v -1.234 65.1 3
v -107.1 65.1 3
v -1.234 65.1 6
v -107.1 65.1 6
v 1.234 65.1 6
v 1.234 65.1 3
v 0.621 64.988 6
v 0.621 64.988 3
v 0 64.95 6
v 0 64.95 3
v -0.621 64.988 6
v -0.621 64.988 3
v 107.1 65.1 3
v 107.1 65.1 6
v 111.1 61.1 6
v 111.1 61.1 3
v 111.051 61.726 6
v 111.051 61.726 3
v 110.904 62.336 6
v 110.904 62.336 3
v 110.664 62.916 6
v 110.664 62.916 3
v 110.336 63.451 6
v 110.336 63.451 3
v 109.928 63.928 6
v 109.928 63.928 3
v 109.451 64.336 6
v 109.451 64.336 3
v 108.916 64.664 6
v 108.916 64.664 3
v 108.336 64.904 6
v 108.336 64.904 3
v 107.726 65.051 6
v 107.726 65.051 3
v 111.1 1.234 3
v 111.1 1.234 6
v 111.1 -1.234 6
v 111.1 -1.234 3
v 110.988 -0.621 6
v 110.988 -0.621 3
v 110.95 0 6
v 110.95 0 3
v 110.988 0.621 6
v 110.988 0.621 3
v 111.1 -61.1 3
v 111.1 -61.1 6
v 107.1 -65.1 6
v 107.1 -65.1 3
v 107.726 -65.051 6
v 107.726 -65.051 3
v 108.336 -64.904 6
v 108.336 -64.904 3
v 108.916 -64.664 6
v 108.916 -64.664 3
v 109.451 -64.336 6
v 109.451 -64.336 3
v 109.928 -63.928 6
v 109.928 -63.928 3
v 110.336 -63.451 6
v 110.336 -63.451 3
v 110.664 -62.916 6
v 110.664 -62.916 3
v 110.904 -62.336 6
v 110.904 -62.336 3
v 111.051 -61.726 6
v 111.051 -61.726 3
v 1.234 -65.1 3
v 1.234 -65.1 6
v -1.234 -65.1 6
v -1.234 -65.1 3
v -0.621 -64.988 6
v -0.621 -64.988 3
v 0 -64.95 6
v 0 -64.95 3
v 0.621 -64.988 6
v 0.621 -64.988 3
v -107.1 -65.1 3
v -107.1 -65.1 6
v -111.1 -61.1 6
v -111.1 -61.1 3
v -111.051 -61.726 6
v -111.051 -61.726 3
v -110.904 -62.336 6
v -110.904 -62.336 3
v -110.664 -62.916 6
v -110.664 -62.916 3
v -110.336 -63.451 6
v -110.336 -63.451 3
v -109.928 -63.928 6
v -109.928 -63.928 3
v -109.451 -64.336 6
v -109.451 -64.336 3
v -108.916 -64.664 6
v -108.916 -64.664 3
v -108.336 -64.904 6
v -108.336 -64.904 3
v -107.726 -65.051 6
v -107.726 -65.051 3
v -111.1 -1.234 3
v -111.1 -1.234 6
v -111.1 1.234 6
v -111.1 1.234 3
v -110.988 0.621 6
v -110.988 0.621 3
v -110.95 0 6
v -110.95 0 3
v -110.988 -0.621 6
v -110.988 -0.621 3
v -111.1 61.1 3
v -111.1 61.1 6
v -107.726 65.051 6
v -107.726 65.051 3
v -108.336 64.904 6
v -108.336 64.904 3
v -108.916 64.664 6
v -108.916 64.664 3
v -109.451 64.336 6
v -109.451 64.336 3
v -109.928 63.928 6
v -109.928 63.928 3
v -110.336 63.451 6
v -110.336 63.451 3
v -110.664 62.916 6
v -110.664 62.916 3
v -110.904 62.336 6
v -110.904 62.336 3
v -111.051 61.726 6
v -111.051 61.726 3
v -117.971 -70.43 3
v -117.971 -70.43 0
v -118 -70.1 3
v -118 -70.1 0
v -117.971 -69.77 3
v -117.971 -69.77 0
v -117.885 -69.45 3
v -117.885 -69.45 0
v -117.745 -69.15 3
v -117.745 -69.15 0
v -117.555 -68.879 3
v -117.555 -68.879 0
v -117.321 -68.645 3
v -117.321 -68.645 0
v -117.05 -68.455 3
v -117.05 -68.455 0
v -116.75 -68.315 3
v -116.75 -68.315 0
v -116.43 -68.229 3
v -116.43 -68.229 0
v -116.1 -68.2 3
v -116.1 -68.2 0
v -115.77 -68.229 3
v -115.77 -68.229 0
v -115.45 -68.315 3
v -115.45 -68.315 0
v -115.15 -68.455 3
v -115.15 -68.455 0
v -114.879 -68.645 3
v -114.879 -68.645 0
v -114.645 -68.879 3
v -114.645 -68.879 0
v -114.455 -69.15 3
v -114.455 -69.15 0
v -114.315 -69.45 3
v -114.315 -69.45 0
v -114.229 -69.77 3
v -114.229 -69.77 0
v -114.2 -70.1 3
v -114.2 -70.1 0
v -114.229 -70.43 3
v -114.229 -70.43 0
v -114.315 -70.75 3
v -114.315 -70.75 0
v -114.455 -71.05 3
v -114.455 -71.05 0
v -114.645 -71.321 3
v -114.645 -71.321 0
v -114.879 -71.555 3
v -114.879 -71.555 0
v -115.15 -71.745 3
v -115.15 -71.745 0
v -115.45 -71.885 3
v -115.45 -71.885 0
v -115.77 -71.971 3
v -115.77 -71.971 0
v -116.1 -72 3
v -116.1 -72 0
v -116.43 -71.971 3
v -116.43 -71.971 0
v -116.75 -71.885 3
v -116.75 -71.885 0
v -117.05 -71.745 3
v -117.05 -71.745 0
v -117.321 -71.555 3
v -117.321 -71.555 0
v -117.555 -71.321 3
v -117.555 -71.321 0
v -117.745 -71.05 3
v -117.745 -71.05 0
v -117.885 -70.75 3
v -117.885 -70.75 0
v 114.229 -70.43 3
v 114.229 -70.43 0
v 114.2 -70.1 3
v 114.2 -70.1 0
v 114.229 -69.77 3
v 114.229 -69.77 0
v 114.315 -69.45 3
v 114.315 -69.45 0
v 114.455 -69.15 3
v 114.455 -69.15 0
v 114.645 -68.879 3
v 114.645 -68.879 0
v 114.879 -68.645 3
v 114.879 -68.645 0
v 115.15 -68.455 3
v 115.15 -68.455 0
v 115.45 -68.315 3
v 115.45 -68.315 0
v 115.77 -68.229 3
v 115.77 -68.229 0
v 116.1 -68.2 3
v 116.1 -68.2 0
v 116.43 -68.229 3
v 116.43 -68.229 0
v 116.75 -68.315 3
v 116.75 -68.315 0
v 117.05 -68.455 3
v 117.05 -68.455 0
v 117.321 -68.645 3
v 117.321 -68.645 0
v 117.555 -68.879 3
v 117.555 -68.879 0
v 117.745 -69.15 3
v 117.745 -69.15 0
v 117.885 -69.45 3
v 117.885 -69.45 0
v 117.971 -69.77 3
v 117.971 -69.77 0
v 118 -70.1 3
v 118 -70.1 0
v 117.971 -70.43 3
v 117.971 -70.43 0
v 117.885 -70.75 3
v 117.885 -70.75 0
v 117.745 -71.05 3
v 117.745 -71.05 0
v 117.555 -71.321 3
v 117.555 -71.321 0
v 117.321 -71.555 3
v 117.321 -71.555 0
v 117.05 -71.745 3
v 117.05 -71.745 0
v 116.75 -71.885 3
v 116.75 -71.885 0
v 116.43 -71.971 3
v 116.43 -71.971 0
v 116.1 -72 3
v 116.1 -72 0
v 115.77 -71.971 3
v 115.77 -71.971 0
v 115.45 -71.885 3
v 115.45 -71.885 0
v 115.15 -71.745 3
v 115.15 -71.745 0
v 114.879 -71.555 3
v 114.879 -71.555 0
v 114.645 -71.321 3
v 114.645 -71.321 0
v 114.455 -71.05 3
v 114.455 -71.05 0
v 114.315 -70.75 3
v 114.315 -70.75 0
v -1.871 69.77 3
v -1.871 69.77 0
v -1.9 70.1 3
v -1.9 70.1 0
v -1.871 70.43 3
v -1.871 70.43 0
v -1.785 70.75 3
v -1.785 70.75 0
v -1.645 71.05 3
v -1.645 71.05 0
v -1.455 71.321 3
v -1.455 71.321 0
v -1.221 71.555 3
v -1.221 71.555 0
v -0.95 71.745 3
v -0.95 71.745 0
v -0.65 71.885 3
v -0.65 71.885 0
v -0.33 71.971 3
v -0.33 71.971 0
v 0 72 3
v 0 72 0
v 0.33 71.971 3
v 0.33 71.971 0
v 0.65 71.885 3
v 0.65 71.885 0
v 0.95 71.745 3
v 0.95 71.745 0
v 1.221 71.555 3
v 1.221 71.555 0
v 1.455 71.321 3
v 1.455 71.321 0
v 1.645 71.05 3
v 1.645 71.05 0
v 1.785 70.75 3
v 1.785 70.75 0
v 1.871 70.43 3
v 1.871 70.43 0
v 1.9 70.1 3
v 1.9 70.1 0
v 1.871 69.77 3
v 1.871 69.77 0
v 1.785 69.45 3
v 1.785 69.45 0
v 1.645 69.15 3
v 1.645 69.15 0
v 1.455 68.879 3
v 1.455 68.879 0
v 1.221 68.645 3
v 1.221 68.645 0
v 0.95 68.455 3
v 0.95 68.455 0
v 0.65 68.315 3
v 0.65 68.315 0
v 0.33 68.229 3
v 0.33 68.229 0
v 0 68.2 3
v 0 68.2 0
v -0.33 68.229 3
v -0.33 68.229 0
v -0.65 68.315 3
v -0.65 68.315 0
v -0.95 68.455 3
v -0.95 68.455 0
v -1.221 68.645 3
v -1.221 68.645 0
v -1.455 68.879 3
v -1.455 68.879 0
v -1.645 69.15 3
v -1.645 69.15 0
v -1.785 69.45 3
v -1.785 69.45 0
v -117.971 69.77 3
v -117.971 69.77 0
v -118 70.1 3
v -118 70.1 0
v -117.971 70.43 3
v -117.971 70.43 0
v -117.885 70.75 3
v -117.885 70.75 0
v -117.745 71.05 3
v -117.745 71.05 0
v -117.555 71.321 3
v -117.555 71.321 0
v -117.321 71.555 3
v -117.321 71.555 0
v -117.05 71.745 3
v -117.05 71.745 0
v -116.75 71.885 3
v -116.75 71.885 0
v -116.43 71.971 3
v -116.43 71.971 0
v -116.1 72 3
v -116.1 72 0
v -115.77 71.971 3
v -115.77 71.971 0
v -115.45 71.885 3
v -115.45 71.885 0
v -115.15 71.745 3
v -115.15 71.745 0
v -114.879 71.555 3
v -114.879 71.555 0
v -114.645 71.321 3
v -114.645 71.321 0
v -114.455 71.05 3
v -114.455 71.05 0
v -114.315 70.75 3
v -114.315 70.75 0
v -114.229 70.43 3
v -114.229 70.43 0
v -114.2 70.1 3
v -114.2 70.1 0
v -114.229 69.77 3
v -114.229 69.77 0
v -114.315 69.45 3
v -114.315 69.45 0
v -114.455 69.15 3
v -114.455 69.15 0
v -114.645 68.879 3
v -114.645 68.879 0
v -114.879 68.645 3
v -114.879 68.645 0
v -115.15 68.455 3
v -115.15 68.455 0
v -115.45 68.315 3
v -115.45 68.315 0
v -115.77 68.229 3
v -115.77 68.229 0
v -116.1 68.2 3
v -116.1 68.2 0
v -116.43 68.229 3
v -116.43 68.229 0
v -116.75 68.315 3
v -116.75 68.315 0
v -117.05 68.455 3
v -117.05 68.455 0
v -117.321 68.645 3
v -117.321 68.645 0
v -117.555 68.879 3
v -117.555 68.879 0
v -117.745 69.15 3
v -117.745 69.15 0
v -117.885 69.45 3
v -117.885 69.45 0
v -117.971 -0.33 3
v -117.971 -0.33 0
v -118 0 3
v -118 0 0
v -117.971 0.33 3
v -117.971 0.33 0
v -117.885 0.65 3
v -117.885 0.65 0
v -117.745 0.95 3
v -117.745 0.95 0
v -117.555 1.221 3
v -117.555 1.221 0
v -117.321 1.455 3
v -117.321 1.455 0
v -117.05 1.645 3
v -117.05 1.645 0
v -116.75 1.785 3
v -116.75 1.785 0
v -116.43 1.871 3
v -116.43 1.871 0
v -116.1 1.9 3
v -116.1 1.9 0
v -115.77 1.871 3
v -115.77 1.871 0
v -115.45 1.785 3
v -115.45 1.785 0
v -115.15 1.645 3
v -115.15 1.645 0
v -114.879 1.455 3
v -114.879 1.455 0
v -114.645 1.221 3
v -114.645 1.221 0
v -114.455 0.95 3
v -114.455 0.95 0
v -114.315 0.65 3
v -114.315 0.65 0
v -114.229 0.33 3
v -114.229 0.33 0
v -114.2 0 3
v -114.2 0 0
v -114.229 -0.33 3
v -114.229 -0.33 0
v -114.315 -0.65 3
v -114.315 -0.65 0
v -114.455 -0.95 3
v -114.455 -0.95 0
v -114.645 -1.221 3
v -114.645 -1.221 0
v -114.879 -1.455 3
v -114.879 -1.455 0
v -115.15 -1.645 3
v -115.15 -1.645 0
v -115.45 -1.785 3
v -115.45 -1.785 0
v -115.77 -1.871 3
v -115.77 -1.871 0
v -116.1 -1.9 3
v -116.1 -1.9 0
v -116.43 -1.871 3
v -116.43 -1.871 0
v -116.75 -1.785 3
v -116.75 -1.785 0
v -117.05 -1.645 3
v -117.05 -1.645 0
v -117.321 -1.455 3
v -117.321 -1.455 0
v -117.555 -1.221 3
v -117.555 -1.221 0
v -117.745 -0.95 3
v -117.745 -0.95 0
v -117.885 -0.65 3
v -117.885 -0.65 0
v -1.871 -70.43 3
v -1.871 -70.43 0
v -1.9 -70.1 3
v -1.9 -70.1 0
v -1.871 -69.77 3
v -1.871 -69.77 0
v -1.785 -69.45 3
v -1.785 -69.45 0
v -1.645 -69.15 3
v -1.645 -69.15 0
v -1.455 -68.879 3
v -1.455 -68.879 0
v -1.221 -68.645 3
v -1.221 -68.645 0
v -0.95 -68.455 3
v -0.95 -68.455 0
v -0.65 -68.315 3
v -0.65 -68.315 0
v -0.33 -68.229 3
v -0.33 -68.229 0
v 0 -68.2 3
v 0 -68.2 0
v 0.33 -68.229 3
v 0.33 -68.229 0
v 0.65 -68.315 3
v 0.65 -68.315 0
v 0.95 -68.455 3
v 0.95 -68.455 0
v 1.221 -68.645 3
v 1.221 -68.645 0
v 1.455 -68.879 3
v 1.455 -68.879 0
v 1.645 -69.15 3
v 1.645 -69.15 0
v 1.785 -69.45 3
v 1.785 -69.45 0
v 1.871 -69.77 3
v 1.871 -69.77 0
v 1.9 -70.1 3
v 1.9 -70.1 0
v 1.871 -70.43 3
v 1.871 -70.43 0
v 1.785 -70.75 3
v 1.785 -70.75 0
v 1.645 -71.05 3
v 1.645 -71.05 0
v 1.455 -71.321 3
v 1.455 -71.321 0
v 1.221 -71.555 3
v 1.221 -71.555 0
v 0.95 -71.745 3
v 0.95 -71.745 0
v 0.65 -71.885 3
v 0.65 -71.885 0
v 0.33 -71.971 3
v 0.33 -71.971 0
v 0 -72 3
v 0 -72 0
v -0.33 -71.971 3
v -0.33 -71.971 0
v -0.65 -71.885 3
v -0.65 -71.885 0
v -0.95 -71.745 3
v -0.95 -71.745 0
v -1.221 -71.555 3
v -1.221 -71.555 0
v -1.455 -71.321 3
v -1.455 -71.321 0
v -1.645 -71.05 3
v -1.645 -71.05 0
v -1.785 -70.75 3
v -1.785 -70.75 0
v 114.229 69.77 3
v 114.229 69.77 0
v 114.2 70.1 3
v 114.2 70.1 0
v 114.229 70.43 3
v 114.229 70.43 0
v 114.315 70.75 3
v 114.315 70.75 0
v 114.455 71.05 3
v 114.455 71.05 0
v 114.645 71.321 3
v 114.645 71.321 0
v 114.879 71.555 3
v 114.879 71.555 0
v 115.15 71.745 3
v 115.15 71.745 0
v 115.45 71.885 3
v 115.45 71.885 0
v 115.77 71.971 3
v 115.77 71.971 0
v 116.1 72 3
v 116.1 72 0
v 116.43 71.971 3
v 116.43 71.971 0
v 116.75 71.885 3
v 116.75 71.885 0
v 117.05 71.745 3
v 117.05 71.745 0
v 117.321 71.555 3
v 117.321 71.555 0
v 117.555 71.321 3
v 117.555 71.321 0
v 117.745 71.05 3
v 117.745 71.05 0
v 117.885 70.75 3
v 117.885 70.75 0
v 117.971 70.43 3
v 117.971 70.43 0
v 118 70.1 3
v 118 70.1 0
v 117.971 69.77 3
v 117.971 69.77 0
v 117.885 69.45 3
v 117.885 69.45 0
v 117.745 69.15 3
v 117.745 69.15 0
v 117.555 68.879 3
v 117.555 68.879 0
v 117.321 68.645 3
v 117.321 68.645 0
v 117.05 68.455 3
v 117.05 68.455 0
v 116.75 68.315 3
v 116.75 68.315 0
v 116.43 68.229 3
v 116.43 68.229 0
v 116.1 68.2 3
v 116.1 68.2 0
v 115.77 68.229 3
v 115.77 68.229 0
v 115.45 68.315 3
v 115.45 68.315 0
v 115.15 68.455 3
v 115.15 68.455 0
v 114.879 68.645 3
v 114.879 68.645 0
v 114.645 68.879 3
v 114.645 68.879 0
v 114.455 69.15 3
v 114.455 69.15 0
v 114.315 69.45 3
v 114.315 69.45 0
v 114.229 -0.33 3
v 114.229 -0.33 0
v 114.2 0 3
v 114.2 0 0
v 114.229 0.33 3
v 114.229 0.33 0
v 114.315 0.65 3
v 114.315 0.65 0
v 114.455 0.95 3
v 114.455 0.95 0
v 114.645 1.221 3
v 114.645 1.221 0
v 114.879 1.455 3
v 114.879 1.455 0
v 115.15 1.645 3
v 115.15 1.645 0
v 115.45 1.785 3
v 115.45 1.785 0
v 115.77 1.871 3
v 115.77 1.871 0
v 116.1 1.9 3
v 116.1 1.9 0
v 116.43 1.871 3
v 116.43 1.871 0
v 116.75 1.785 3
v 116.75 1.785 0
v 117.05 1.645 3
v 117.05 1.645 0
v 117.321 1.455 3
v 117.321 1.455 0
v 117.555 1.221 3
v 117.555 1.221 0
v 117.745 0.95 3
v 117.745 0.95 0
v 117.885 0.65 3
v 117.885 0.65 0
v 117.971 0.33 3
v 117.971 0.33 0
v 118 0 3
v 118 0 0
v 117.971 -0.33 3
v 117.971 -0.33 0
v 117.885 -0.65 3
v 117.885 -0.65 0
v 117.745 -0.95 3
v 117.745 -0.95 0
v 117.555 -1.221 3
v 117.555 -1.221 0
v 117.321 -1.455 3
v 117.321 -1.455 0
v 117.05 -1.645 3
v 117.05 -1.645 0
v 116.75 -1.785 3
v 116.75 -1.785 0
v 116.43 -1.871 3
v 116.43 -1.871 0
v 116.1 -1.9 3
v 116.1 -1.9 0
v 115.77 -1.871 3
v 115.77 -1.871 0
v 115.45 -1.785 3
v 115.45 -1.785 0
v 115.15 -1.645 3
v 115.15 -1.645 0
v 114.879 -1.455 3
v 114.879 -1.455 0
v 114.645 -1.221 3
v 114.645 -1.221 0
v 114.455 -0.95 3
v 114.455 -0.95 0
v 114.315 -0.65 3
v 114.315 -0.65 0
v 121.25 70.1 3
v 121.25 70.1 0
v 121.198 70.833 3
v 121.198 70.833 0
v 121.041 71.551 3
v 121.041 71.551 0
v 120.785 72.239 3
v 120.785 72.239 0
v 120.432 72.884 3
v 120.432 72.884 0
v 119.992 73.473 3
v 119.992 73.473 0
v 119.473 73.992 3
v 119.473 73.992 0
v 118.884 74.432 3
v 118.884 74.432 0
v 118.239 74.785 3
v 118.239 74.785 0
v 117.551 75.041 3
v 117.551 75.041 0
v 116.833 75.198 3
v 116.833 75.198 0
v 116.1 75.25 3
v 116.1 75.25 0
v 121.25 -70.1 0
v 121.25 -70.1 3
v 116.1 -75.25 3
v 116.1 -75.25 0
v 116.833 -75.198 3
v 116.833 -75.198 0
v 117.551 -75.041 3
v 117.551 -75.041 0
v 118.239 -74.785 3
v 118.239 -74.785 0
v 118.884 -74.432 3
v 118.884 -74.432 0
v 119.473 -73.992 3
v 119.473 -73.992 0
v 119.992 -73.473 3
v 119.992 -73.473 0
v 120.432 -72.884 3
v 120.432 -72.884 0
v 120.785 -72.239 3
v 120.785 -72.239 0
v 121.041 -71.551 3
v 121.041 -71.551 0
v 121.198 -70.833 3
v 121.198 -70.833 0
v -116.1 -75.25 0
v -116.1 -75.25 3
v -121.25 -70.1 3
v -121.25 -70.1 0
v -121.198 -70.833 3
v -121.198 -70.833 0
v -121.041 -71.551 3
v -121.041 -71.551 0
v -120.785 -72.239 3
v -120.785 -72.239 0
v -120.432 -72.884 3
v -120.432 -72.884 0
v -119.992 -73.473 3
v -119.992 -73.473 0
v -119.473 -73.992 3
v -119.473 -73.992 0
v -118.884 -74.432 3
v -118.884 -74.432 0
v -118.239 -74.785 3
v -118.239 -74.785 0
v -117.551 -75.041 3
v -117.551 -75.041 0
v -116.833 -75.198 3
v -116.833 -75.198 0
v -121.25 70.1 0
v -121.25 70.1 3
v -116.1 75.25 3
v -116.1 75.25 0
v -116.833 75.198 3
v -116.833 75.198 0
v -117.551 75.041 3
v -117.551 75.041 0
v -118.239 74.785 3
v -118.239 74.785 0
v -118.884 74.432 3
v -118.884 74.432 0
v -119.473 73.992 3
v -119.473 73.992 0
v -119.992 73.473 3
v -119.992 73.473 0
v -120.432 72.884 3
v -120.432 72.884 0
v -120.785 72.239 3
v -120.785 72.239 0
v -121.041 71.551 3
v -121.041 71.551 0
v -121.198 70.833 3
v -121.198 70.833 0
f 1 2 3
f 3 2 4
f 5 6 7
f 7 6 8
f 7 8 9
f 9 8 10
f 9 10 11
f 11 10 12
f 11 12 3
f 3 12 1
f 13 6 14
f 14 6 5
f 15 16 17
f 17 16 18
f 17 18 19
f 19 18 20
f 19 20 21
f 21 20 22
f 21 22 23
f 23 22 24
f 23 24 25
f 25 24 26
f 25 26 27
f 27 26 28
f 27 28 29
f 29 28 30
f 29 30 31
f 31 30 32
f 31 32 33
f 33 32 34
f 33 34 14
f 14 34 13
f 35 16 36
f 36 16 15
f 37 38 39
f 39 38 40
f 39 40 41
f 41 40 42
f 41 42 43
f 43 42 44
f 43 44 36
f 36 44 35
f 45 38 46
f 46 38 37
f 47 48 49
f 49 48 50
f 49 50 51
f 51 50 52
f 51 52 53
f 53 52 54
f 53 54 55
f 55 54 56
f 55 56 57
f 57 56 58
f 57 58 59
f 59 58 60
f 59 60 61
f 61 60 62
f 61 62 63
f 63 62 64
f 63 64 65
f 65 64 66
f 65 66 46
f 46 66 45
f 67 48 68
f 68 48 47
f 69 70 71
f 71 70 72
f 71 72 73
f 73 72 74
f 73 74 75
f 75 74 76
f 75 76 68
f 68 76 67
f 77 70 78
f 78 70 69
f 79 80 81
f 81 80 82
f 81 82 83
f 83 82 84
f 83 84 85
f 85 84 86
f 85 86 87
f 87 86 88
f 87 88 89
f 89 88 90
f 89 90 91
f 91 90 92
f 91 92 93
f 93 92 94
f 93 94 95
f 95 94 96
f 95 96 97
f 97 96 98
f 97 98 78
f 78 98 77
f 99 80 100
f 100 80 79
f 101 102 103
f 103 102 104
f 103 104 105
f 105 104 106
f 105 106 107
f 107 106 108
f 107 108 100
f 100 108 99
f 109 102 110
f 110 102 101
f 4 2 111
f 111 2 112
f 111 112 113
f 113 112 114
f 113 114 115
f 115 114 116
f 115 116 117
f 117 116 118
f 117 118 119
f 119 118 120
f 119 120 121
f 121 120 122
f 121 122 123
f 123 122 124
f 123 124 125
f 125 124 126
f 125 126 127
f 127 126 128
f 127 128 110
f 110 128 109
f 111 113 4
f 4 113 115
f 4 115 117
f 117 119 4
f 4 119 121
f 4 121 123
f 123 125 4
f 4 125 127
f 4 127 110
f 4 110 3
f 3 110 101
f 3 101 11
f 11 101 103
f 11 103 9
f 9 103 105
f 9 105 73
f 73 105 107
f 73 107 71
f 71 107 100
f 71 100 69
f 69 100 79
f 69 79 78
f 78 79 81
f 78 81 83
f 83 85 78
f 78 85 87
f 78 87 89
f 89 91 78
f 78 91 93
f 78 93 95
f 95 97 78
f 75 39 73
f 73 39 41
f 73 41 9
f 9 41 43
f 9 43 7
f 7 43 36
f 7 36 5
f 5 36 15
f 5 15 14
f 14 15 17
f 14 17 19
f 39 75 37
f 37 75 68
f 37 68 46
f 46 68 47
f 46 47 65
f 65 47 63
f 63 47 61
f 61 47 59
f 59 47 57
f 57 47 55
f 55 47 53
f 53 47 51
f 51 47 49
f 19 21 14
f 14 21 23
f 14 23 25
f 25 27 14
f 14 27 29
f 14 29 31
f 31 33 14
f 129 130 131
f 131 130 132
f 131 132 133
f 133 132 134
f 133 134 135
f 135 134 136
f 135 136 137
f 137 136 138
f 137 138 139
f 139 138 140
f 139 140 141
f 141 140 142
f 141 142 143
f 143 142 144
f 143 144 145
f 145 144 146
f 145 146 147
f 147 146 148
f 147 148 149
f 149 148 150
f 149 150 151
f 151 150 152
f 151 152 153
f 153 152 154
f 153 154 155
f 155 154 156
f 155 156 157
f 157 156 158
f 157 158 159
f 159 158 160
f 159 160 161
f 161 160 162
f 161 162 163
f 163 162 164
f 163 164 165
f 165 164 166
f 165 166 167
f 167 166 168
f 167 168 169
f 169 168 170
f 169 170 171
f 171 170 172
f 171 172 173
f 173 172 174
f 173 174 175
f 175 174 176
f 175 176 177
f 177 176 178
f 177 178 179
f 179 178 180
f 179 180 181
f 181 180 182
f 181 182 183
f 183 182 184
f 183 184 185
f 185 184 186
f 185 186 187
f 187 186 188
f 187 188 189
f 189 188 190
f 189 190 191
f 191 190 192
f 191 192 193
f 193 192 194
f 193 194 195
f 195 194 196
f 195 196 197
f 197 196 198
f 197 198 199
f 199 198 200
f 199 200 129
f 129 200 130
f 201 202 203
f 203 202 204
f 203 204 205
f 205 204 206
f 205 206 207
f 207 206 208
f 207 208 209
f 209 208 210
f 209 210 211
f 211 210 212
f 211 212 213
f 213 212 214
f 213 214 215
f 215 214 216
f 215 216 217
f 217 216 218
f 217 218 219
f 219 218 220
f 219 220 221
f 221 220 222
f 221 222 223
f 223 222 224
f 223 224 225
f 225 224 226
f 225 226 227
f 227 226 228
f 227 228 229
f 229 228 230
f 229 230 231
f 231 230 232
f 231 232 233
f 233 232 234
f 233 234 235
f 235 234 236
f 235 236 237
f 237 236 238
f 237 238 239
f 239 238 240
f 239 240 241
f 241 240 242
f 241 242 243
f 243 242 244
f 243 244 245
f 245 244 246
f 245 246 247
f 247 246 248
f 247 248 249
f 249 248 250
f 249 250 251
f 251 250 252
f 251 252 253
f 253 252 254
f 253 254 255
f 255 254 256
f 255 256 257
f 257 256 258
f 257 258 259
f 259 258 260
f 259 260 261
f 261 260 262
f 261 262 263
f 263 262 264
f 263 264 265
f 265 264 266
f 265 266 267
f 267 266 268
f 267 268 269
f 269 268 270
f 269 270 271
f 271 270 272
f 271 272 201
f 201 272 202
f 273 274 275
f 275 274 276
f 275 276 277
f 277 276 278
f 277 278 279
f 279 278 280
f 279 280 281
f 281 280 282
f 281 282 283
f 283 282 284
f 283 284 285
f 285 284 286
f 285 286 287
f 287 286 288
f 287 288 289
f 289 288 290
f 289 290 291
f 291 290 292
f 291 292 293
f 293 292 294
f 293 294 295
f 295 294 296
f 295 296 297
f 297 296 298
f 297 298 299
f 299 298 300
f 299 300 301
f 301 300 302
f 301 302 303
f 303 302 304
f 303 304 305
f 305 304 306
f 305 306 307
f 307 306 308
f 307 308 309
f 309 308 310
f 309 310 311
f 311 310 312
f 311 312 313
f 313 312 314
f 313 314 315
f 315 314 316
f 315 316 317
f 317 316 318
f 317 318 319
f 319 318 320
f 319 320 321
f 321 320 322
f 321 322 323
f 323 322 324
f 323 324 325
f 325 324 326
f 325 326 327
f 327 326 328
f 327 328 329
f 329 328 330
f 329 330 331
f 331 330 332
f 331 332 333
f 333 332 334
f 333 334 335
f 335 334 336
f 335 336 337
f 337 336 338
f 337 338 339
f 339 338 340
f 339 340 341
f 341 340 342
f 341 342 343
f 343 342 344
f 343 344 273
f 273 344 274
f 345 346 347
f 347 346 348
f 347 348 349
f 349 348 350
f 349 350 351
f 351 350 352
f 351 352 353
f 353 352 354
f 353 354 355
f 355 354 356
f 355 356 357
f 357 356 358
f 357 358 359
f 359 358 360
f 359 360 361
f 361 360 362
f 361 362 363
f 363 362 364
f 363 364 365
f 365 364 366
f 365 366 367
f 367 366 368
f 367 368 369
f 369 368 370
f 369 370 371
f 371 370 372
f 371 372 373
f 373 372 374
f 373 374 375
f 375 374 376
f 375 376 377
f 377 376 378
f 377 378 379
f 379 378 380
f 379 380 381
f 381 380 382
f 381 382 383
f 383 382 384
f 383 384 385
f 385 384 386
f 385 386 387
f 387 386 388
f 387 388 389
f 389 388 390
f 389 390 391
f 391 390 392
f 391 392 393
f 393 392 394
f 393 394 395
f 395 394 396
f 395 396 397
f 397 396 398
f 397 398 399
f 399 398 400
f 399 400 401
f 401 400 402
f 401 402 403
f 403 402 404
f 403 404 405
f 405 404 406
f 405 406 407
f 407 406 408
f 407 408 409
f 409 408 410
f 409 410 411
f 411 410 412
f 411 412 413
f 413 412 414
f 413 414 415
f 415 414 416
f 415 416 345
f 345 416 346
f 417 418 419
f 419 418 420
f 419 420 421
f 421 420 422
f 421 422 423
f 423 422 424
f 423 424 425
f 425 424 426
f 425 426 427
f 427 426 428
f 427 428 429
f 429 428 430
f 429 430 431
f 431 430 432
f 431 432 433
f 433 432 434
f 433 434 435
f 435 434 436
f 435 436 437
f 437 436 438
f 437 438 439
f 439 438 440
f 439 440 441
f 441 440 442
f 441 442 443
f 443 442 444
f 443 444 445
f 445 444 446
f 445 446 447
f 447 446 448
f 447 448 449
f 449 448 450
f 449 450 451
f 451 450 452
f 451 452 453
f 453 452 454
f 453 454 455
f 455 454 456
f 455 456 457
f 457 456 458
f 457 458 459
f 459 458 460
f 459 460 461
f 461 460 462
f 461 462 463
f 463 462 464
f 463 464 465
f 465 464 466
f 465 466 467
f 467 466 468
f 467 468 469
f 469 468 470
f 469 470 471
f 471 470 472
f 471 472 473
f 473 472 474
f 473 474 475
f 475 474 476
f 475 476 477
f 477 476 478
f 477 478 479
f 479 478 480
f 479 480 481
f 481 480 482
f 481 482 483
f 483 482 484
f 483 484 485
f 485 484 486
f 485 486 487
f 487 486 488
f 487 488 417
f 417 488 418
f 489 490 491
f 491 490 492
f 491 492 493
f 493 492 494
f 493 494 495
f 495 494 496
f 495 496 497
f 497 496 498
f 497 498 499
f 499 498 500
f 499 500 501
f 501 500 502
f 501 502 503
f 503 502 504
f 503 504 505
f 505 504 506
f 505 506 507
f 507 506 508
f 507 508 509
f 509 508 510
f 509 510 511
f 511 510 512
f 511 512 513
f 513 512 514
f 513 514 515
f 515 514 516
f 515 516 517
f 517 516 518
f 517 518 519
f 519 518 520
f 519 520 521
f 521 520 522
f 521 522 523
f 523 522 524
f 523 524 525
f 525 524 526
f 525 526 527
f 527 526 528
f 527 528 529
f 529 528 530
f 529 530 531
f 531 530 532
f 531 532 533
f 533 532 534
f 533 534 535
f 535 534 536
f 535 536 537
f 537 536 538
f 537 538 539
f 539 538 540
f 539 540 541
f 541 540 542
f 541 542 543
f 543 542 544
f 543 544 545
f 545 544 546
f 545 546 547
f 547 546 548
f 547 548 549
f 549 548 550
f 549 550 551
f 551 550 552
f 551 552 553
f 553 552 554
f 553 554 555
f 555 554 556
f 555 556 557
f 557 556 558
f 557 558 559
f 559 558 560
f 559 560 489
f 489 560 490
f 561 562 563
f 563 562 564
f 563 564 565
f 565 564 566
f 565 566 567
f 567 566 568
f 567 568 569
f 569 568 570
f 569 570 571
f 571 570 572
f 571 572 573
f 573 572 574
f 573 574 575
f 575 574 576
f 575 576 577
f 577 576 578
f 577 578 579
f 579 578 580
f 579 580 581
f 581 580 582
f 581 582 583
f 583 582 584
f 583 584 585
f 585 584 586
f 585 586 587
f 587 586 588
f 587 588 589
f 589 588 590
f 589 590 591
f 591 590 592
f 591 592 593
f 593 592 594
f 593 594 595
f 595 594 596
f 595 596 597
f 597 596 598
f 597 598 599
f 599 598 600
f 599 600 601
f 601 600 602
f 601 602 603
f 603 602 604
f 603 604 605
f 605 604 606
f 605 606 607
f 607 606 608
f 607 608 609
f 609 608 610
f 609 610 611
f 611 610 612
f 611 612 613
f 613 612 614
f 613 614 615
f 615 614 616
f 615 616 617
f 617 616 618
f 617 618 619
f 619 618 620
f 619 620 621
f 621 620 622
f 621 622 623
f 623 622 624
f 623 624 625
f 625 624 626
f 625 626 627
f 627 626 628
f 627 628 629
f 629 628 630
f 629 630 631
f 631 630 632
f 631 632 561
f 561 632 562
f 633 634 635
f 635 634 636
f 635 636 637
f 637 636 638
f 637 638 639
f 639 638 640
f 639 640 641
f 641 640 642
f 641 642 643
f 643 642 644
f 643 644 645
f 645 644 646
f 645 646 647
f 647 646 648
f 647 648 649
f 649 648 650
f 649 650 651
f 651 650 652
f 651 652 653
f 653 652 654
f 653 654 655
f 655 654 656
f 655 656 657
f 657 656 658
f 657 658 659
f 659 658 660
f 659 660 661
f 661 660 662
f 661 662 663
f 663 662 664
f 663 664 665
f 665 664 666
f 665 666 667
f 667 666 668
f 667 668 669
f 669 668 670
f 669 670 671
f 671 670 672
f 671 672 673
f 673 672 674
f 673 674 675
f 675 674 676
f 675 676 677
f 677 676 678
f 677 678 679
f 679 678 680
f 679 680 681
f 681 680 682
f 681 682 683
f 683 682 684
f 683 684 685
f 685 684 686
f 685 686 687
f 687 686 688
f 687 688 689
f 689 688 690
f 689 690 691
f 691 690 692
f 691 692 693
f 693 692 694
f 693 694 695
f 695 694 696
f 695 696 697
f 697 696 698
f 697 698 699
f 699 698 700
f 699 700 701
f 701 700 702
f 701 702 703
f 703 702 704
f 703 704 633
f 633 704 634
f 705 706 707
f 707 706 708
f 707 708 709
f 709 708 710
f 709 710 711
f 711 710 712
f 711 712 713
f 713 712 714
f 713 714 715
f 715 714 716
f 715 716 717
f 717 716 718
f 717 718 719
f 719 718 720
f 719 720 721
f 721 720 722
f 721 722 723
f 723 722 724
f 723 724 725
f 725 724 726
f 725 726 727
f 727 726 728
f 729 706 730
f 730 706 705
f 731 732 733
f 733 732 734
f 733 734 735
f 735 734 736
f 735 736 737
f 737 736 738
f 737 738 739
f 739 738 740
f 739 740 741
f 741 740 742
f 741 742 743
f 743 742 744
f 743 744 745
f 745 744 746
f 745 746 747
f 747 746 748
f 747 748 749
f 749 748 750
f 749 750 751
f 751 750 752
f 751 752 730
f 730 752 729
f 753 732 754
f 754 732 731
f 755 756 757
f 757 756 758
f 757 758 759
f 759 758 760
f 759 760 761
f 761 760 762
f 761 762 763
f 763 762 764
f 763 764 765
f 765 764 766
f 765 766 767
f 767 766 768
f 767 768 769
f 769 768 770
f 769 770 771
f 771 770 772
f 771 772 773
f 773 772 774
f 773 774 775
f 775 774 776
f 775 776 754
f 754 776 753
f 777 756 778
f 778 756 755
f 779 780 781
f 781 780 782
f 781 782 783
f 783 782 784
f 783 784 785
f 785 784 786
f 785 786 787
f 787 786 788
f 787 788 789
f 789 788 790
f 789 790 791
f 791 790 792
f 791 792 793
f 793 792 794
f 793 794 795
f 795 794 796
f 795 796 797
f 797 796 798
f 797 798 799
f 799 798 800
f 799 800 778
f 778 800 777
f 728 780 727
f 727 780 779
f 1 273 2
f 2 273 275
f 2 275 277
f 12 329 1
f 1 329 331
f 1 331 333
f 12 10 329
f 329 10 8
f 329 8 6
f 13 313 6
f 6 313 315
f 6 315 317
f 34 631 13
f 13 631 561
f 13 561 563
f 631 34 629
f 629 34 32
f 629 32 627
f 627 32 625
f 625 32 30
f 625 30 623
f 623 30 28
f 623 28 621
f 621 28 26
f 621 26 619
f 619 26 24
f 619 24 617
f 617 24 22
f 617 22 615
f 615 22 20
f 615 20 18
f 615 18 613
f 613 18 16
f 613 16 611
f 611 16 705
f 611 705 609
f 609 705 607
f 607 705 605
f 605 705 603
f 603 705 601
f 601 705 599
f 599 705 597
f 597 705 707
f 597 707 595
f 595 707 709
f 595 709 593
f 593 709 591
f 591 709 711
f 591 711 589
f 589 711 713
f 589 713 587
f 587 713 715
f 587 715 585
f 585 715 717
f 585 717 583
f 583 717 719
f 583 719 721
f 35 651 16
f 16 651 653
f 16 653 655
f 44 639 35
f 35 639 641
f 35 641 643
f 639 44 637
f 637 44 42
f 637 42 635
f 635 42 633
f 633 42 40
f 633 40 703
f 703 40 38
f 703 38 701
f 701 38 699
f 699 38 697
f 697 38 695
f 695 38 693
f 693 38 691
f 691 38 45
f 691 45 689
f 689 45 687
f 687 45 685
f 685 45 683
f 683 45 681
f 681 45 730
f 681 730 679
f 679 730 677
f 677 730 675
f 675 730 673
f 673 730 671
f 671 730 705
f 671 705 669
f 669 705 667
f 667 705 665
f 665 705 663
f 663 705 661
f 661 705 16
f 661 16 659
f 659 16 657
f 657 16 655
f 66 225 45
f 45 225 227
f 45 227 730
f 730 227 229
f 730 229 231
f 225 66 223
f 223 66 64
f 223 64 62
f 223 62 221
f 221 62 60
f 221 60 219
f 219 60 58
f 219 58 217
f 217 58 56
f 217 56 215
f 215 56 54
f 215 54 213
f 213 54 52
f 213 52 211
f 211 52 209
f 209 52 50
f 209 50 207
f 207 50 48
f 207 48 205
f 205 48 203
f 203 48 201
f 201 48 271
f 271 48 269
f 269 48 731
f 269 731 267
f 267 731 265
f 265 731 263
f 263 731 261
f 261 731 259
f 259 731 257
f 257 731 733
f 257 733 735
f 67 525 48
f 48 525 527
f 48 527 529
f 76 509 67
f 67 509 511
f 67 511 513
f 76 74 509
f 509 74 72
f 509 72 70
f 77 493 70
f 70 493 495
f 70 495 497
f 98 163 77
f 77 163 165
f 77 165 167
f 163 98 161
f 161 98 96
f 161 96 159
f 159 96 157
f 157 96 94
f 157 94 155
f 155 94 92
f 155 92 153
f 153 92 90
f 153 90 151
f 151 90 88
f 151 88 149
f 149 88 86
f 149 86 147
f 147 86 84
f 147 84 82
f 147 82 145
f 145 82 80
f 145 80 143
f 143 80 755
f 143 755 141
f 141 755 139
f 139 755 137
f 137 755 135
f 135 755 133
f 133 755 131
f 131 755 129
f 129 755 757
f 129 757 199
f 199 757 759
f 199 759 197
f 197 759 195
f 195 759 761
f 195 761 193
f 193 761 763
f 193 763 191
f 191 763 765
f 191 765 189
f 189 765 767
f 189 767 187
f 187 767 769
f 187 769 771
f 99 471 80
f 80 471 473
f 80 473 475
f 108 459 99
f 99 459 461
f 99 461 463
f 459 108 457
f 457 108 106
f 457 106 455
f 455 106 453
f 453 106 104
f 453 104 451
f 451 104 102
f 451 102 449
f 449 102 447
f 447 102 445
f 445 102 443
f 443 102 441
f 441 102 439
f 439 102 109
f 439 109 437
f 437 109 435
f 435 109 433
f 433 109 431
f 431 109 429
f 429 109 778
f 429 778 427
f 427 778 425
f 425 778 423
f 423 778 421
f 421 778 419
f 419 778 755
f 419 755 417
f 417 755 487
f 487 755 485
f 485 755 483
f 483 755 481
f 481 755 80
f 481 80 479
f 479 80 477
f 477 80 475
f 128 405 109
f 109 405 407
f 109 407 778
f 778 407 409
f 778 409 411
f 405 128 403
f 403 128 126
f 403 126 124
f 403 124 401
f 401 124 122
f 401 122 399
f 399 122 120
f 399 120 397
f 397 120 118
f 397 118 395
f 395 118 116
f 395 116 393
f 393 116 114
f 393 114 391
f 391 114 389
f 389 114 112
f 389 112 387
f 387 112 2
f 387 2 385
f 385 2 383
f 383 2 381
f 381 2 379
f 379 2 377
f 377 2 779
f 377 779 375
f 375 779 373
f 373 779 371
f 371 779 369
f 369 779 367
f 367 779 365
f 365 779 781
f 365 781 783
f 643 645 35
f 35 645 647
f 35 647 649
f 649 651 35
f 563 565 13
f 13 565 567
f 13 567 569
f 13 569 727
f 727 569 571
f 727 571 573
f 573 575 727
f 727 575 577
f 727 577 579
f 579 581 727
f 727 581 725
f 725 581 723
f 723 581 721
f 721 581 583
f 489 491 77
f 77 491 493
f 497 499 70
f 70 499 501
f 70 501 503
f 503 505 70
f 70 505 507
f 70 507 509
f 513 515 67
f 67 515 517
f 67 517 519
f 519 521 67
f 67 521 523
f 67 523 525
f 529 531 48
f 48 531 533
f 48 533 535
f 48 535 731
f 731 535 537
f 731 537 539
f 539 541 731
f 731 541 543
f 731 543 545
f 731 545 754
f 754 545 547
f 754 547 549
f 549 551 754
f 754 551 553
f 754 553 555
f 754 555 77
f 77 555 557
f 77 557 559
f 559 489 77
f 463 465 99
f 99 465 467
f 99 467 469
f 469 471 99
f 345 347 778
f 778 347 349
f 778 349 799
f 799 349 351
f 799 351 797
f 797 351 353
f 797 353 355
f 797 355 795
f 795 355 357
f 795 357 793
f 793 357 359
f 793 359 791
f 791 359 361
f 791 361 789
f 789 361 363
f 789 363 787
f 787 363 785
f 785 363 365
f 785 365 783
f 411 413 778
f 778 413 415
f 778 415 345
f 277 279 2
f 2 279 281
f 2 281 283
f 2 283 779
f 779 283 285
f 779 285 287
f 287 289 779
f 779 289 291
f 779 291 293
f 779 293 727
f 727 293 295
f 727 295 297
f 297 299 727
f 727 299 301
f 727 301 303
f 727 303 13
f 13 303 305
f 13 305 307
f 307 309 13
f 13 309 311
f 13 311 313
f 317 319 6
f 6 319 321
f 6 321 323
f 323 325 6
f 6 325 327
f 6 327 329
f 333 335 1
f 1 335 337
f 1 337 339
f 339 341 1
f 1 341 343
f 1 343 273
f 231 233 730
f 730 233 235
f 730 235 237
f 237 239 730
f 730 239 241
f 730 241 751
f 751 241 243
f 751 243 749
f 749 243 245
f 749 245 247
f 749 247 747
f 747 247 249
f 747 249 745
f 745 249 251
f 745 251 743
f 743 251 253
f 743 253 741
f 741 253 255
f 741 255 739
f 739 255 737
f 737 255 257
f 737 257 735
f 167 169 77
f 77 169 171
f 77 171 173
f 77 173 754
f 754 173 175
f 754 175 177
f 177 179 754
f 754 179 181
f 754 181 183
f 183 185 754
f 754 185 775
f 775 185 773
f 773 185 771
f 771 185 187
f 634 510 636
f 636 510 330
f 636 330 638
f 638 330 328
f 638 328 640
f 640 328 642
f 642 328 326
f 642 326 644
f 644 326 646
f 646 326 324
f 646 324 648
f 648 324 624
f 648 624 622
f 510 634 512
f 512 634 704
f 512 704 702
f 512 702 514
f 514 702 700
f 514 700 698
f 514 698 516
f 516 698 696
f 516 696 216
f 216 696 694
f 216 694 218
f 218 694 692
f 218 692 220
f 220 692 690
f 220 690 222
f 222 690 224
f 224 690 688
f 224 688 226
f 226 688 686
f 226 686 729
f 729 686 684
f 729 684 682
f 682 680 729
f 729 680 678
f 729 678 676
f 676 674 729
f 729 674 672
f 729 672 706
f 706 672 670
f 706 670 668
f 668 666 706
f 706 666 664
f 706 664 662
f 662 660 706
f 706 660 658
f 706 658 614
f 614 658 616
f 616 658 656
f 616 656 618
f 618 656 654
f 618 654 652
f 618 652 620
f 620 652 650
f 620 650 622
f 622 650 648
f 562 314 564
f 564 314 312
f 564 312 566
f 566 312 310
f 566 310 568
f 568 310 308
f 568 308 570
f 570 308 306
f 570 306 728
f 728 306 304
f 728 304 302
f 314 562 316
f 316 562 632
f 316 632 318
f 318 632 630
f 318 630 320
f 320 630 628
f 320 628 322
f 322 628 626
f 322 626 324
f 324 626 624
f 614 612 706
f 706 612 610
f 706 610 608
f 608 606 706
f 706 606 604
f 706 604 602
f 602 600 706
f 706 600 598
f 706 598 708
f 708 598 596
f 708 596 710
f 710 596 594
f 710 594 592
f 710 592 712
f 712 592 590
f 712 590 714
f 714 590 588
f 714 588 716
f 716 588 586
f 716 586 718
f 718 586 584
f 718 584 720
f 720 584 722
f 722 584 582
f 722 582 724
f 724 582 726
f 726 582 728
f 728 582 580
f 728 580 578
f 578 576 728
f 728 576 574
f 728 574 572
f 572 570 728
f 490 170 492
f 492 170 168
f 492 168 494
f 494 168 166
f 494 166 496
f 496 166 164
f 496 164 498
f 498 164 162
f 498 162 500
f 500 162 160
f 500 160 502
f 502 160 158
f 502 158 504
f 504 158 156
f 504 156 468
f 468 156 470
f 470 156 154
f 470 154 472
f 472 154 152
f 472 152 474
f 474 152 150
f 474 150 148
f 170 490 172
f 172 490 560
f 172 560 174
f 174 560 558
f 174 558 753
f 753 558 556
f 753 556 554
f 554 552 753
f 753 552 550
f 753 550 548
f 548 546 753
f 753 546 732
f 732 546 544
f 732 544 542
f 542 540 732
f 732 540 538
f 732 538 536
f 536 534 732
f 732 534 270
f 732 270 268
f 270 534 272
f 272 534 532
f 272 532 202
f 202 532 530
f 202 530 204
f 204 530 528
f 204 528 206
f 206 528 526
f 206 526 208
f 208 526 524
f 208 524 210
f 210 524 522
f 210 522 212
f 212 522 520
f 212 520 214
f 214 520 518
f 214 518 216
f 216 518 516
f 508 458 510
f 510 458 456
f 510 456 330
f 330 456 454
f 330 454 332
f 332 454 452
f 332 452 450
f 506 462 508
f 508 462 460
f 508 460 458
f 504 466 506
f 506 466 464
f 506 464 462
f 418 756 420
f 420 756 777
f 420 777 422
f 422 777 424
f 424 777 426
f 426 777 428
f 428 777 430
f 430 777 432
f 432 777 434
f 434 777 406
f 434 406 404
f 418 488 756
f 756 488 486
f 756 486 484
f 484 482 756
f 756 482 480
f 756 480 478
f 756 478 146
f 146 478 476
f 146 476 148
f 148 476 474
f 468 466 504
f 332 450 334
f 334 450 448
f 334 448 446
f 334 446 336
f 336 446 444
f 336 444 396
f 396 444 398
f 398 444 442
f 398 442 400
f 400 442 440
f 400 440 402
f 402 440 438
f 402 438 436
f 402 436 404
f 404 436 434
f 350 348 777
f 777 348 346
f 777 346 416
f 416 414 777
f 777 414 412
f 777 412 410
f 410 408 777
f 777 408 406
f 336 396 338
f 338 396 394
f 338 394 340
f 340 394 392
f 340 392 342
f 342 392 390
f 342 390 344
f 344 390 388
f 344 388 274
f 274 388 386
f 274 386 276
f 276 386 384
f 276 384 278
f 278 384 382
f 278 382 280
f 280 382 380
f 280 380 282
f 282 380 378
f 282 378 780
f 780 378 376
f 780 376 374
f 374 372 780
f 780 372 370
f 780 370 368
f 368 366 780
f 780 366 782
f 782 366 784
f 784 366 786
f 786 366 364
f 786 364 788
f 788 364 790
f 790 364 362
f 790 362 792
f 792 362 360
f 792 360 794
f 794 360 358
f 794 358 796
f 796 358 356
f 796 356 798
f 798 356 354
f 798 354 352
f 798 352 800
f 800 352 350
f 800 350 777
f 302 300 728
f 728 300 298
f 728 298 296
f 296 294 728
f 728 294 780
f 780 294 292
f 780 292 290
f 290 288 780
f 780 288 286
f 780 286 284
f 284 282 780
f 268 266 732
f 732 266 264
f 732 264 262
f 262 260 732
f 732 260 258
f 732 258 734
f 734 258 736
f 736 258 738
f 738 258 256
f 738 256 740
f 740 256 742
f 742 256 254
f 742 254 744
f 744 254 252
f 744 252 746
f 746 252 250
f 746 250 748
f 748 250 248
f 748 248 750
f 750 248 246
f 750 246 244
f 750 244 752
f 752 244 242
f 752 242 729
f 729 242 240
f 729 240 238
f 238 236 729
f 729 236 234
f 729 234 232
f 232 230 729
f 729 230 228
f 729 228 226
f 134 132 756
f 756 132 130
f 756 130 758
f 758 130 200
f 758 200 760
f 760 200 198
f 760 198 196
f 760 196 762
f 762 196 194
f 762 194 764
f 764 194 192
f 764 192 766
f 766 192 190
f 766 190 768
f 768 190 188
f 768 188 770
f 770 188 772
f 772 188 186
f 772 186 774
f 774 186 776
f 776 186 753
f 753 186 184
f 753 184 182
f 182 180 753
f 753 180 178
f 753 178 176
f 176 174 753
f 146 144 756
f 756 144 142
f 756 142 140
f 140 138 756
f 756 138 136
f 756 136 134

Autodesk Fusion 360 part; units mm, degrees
sketch "Sketch1" plane through (0, 0, 0) normal (0, 0, 1) x (1, 0, 0)
  line L0 (-116.1, 70.1) -> (116.1, 70.1) construction
  line L1 (116.1, 70.1) -> (116.1, -70.1) construction
  line L2 (116.1, -70.1) -> (-116.1, -70.1) construction
  line L3 (-116.1, -70.1) -> (-116.1, 70.1) construction
  circle A0 centre (-116.1, 70.1) radius 1.9
  circle A1 centre (-116.1, 0) radius 1.9
  circle A2 centre (-116.1, -70.1) radius 1.9
  circle A3 centre (0, 70.1) radius 1.9
  circle A4 centre (0, -70.1) radius 1.9
  circle A5 centre (116.1, -70.1) radius 1.9
  circle A6 centre (116.1, 0) radius 1.9
  circle A7 centre (116.1, 70.1) radius 1.9
  circle A8 centre (-116.1, 70.1) radius 5.15
  circle A9 centre (-116.1, 0) radius 5.15
  circle A10 centre (-116.1, -70.1) radius 5.15
  circle A11 centre (0, -70.1) radius 5.15
  circle A12 centre (0, 70.1) radius 5.15
  circle A13 centre (116.1, 70.1) radius 5.15
  circle A14 centre (116.1, 0) radius 5.15
  circle A15 centre (116.1, -70.1) radius 5.15
  line L4 (-121.25, 70.1) -> (-121.25, -70.1)
  line L5 (-116.1, -75.25) -> (116.1, -75.25)
  line L6 (121.25, -70.1) -> (121.25, 70.1)
  line L7 (116.1, 75.25) -> (-116.1, 75.25)
  point P0 (0, 70.1)
  point P1 (-116.1, 0)
  dimension "d1" = 232.2
  dimension "d2" = 140.2
  dimension "d3" = 3.8
  dimension "d4" = 3.8
  dimension "d5" = 3.8
  dimension "d6" = 3.8
  dimension "d7" = 3.8
  dimension "d8" = 3.8
  dimension "d9" = 3.8
  dimension "d10" = 3.8
  dimension "d11" = 10.3
  dimension "d12" = 10.3
  dimension "d13" = 10.3
  dimension "d15" = 10.3
  dimension "d16" = 10.3
  dimension "d17" = 10.3
  dimension "d18" = 10.3
  dimension "d19" = 10.3
extrude "Extrude1" add sketch "Sketch1" along normal blind 3 contours A8 | A9 | A11 | A14 | A12 | A8 A10 A13 A15 L4 L5 L6 L7 | A13 | A10 | A15
sketch "Sketch2" plane through (0, 0, 3) normal (0, 0, 1) x (-1, 0, 0)
  circle A0 centre (-116.1, 0) radius 1.9
  circle A1 centre (116.1, -70.1) radius 1.9
  circle A2 centre (-116.1, -70.1) radius 1.9
  circle A3 centre (0, -70.1) radius 1.9
  circle A4 centre (116.1, 0) radius 1.9
  circle A5 centre (0, 70.1) radius 1.9
  circle A6 centre (-116.1, 70.1) radius 1.9
  circle A7 centre (116.1, 70.1) radius 1.9
  line L0 (-116.1, -75.25) -> (116.1, -75.25)
  arc A8 (116.1, -75.25) -> (121.25, -70.1) centre (116.1, -70.1) ccw
  line L1 (121.25, -70.1) -> (121.25, 70.1)
  arc A9 (121.25, 70.1) -> (116.1, 75.25) centre (116.1, 70.1) ccw
  line L2 (116.1, 75.25) -> (-116.1, 75.25)
  arc A10 (-116.1, 75.25) -> (-121.25, 70.1) centre (-116.1, 70.1) ccw
  line L3 (-121.25, 70.1) -> (-121.25, -70.1)
  arc A11 (-121.25, -70.1) -> (-116.1, -75.25) centre (-116.1, -70.1) ccw
  circle A12 centre (116.1, -70.1) radius 5.15
  circle A13 centre (116.1, 0) radius 5.15
  circle A14 centre (116.1, 70.1) radius 5.15
  circle A15 centre (0, -70.1) radius 5.15
  circle A16 centre (-116.1, -70.1) radius 5.15
  circle A17 centre (-116.1, 0) radius 5.15
  circle A18 centre (-116.1, 70.1) radius 5.15
  circle A19 centre (0, 70.1) radius 5.15
  line L4 (116.1, 0) -> (-116.1, 0) construction
  line L5 (0, -70.1) -> (0, 70.1) construction
  circle A20 centre (107.1, -61.1) radius 4
  circle A21 centre (107.1, 61.1) radius 4
  circle A22 centre (-107.1, -61.1) radius 4
  circle A23 centre (-107.1, 61.1) radius 4
  line L6 (116.1, -70.1) -> (116.1, 70.1) construction
  line L7 (116.1, 70.1) -> (-116.1, 70.1) construction
  line L8 (-116.1, 70.1) -> (-116.1, -70.1) construction
  line L9 (-116.1, -70.1) -> (116.1, -70.1) construction
  line L10 (107.1, -65.1) -> (-107.1, -65.1)
  line L11 (-111.1, -61.1) -> (-111.1, 61.1)
  line L12 (-107.1, 65.1) -> (107.1, 65.1)
  line L13 (111.1, -61.1) -> (111.1, 61.1)
  dimension "d22" = 10.3
  dimension "d23" = 10.3
  dimension "d24" = 10.3
  dimension "d25" = 10.3
  dimension "d26" = 10.3
  dimension "d27" = 10.3
  dimension "d28" = 10.3
  dimension "d29" = 10.3
  dimension "d30" = 8
  dimension "d31" = 8
  dimension "d32" = 8
  dimension "d33" = 8
  dimension "d36" = 5
  dimension "d37" = 5
extrude "Extrude4" add sketch "Sketch2" along normal blind 3 contours A13 A15 A17 A19 A20 A21 A22 A23 L10 L11 L12 L13 | A22 | A20 | A23 | A21
equation "d4 = d3"
equation "d5 = d3"
equation "d6 = d3"
equation "d7 = d3"
equation "d8 = d3"
equation "d9 = d3"
equation "d10 = d3"
equation "d12 = d11"
equation "d13 = d11"
equation "d15 = d11"
equation "d16 = d11"
equation "d17 = d11"
equation "d18 = d11"
equation "d19 = d11"
equation "d22 = d11"
equation "d23 = d11"
equation "d24 = d11"
equation "d25 = d11"
equation "d26 = d11"
equation "d27 = d11"
equation "d28 = d11"
equation "d29 = d11"
equation "d31 = d30"
equation "d32 = d30"
equation "d33 = d30"
equation "d37 = d36"
